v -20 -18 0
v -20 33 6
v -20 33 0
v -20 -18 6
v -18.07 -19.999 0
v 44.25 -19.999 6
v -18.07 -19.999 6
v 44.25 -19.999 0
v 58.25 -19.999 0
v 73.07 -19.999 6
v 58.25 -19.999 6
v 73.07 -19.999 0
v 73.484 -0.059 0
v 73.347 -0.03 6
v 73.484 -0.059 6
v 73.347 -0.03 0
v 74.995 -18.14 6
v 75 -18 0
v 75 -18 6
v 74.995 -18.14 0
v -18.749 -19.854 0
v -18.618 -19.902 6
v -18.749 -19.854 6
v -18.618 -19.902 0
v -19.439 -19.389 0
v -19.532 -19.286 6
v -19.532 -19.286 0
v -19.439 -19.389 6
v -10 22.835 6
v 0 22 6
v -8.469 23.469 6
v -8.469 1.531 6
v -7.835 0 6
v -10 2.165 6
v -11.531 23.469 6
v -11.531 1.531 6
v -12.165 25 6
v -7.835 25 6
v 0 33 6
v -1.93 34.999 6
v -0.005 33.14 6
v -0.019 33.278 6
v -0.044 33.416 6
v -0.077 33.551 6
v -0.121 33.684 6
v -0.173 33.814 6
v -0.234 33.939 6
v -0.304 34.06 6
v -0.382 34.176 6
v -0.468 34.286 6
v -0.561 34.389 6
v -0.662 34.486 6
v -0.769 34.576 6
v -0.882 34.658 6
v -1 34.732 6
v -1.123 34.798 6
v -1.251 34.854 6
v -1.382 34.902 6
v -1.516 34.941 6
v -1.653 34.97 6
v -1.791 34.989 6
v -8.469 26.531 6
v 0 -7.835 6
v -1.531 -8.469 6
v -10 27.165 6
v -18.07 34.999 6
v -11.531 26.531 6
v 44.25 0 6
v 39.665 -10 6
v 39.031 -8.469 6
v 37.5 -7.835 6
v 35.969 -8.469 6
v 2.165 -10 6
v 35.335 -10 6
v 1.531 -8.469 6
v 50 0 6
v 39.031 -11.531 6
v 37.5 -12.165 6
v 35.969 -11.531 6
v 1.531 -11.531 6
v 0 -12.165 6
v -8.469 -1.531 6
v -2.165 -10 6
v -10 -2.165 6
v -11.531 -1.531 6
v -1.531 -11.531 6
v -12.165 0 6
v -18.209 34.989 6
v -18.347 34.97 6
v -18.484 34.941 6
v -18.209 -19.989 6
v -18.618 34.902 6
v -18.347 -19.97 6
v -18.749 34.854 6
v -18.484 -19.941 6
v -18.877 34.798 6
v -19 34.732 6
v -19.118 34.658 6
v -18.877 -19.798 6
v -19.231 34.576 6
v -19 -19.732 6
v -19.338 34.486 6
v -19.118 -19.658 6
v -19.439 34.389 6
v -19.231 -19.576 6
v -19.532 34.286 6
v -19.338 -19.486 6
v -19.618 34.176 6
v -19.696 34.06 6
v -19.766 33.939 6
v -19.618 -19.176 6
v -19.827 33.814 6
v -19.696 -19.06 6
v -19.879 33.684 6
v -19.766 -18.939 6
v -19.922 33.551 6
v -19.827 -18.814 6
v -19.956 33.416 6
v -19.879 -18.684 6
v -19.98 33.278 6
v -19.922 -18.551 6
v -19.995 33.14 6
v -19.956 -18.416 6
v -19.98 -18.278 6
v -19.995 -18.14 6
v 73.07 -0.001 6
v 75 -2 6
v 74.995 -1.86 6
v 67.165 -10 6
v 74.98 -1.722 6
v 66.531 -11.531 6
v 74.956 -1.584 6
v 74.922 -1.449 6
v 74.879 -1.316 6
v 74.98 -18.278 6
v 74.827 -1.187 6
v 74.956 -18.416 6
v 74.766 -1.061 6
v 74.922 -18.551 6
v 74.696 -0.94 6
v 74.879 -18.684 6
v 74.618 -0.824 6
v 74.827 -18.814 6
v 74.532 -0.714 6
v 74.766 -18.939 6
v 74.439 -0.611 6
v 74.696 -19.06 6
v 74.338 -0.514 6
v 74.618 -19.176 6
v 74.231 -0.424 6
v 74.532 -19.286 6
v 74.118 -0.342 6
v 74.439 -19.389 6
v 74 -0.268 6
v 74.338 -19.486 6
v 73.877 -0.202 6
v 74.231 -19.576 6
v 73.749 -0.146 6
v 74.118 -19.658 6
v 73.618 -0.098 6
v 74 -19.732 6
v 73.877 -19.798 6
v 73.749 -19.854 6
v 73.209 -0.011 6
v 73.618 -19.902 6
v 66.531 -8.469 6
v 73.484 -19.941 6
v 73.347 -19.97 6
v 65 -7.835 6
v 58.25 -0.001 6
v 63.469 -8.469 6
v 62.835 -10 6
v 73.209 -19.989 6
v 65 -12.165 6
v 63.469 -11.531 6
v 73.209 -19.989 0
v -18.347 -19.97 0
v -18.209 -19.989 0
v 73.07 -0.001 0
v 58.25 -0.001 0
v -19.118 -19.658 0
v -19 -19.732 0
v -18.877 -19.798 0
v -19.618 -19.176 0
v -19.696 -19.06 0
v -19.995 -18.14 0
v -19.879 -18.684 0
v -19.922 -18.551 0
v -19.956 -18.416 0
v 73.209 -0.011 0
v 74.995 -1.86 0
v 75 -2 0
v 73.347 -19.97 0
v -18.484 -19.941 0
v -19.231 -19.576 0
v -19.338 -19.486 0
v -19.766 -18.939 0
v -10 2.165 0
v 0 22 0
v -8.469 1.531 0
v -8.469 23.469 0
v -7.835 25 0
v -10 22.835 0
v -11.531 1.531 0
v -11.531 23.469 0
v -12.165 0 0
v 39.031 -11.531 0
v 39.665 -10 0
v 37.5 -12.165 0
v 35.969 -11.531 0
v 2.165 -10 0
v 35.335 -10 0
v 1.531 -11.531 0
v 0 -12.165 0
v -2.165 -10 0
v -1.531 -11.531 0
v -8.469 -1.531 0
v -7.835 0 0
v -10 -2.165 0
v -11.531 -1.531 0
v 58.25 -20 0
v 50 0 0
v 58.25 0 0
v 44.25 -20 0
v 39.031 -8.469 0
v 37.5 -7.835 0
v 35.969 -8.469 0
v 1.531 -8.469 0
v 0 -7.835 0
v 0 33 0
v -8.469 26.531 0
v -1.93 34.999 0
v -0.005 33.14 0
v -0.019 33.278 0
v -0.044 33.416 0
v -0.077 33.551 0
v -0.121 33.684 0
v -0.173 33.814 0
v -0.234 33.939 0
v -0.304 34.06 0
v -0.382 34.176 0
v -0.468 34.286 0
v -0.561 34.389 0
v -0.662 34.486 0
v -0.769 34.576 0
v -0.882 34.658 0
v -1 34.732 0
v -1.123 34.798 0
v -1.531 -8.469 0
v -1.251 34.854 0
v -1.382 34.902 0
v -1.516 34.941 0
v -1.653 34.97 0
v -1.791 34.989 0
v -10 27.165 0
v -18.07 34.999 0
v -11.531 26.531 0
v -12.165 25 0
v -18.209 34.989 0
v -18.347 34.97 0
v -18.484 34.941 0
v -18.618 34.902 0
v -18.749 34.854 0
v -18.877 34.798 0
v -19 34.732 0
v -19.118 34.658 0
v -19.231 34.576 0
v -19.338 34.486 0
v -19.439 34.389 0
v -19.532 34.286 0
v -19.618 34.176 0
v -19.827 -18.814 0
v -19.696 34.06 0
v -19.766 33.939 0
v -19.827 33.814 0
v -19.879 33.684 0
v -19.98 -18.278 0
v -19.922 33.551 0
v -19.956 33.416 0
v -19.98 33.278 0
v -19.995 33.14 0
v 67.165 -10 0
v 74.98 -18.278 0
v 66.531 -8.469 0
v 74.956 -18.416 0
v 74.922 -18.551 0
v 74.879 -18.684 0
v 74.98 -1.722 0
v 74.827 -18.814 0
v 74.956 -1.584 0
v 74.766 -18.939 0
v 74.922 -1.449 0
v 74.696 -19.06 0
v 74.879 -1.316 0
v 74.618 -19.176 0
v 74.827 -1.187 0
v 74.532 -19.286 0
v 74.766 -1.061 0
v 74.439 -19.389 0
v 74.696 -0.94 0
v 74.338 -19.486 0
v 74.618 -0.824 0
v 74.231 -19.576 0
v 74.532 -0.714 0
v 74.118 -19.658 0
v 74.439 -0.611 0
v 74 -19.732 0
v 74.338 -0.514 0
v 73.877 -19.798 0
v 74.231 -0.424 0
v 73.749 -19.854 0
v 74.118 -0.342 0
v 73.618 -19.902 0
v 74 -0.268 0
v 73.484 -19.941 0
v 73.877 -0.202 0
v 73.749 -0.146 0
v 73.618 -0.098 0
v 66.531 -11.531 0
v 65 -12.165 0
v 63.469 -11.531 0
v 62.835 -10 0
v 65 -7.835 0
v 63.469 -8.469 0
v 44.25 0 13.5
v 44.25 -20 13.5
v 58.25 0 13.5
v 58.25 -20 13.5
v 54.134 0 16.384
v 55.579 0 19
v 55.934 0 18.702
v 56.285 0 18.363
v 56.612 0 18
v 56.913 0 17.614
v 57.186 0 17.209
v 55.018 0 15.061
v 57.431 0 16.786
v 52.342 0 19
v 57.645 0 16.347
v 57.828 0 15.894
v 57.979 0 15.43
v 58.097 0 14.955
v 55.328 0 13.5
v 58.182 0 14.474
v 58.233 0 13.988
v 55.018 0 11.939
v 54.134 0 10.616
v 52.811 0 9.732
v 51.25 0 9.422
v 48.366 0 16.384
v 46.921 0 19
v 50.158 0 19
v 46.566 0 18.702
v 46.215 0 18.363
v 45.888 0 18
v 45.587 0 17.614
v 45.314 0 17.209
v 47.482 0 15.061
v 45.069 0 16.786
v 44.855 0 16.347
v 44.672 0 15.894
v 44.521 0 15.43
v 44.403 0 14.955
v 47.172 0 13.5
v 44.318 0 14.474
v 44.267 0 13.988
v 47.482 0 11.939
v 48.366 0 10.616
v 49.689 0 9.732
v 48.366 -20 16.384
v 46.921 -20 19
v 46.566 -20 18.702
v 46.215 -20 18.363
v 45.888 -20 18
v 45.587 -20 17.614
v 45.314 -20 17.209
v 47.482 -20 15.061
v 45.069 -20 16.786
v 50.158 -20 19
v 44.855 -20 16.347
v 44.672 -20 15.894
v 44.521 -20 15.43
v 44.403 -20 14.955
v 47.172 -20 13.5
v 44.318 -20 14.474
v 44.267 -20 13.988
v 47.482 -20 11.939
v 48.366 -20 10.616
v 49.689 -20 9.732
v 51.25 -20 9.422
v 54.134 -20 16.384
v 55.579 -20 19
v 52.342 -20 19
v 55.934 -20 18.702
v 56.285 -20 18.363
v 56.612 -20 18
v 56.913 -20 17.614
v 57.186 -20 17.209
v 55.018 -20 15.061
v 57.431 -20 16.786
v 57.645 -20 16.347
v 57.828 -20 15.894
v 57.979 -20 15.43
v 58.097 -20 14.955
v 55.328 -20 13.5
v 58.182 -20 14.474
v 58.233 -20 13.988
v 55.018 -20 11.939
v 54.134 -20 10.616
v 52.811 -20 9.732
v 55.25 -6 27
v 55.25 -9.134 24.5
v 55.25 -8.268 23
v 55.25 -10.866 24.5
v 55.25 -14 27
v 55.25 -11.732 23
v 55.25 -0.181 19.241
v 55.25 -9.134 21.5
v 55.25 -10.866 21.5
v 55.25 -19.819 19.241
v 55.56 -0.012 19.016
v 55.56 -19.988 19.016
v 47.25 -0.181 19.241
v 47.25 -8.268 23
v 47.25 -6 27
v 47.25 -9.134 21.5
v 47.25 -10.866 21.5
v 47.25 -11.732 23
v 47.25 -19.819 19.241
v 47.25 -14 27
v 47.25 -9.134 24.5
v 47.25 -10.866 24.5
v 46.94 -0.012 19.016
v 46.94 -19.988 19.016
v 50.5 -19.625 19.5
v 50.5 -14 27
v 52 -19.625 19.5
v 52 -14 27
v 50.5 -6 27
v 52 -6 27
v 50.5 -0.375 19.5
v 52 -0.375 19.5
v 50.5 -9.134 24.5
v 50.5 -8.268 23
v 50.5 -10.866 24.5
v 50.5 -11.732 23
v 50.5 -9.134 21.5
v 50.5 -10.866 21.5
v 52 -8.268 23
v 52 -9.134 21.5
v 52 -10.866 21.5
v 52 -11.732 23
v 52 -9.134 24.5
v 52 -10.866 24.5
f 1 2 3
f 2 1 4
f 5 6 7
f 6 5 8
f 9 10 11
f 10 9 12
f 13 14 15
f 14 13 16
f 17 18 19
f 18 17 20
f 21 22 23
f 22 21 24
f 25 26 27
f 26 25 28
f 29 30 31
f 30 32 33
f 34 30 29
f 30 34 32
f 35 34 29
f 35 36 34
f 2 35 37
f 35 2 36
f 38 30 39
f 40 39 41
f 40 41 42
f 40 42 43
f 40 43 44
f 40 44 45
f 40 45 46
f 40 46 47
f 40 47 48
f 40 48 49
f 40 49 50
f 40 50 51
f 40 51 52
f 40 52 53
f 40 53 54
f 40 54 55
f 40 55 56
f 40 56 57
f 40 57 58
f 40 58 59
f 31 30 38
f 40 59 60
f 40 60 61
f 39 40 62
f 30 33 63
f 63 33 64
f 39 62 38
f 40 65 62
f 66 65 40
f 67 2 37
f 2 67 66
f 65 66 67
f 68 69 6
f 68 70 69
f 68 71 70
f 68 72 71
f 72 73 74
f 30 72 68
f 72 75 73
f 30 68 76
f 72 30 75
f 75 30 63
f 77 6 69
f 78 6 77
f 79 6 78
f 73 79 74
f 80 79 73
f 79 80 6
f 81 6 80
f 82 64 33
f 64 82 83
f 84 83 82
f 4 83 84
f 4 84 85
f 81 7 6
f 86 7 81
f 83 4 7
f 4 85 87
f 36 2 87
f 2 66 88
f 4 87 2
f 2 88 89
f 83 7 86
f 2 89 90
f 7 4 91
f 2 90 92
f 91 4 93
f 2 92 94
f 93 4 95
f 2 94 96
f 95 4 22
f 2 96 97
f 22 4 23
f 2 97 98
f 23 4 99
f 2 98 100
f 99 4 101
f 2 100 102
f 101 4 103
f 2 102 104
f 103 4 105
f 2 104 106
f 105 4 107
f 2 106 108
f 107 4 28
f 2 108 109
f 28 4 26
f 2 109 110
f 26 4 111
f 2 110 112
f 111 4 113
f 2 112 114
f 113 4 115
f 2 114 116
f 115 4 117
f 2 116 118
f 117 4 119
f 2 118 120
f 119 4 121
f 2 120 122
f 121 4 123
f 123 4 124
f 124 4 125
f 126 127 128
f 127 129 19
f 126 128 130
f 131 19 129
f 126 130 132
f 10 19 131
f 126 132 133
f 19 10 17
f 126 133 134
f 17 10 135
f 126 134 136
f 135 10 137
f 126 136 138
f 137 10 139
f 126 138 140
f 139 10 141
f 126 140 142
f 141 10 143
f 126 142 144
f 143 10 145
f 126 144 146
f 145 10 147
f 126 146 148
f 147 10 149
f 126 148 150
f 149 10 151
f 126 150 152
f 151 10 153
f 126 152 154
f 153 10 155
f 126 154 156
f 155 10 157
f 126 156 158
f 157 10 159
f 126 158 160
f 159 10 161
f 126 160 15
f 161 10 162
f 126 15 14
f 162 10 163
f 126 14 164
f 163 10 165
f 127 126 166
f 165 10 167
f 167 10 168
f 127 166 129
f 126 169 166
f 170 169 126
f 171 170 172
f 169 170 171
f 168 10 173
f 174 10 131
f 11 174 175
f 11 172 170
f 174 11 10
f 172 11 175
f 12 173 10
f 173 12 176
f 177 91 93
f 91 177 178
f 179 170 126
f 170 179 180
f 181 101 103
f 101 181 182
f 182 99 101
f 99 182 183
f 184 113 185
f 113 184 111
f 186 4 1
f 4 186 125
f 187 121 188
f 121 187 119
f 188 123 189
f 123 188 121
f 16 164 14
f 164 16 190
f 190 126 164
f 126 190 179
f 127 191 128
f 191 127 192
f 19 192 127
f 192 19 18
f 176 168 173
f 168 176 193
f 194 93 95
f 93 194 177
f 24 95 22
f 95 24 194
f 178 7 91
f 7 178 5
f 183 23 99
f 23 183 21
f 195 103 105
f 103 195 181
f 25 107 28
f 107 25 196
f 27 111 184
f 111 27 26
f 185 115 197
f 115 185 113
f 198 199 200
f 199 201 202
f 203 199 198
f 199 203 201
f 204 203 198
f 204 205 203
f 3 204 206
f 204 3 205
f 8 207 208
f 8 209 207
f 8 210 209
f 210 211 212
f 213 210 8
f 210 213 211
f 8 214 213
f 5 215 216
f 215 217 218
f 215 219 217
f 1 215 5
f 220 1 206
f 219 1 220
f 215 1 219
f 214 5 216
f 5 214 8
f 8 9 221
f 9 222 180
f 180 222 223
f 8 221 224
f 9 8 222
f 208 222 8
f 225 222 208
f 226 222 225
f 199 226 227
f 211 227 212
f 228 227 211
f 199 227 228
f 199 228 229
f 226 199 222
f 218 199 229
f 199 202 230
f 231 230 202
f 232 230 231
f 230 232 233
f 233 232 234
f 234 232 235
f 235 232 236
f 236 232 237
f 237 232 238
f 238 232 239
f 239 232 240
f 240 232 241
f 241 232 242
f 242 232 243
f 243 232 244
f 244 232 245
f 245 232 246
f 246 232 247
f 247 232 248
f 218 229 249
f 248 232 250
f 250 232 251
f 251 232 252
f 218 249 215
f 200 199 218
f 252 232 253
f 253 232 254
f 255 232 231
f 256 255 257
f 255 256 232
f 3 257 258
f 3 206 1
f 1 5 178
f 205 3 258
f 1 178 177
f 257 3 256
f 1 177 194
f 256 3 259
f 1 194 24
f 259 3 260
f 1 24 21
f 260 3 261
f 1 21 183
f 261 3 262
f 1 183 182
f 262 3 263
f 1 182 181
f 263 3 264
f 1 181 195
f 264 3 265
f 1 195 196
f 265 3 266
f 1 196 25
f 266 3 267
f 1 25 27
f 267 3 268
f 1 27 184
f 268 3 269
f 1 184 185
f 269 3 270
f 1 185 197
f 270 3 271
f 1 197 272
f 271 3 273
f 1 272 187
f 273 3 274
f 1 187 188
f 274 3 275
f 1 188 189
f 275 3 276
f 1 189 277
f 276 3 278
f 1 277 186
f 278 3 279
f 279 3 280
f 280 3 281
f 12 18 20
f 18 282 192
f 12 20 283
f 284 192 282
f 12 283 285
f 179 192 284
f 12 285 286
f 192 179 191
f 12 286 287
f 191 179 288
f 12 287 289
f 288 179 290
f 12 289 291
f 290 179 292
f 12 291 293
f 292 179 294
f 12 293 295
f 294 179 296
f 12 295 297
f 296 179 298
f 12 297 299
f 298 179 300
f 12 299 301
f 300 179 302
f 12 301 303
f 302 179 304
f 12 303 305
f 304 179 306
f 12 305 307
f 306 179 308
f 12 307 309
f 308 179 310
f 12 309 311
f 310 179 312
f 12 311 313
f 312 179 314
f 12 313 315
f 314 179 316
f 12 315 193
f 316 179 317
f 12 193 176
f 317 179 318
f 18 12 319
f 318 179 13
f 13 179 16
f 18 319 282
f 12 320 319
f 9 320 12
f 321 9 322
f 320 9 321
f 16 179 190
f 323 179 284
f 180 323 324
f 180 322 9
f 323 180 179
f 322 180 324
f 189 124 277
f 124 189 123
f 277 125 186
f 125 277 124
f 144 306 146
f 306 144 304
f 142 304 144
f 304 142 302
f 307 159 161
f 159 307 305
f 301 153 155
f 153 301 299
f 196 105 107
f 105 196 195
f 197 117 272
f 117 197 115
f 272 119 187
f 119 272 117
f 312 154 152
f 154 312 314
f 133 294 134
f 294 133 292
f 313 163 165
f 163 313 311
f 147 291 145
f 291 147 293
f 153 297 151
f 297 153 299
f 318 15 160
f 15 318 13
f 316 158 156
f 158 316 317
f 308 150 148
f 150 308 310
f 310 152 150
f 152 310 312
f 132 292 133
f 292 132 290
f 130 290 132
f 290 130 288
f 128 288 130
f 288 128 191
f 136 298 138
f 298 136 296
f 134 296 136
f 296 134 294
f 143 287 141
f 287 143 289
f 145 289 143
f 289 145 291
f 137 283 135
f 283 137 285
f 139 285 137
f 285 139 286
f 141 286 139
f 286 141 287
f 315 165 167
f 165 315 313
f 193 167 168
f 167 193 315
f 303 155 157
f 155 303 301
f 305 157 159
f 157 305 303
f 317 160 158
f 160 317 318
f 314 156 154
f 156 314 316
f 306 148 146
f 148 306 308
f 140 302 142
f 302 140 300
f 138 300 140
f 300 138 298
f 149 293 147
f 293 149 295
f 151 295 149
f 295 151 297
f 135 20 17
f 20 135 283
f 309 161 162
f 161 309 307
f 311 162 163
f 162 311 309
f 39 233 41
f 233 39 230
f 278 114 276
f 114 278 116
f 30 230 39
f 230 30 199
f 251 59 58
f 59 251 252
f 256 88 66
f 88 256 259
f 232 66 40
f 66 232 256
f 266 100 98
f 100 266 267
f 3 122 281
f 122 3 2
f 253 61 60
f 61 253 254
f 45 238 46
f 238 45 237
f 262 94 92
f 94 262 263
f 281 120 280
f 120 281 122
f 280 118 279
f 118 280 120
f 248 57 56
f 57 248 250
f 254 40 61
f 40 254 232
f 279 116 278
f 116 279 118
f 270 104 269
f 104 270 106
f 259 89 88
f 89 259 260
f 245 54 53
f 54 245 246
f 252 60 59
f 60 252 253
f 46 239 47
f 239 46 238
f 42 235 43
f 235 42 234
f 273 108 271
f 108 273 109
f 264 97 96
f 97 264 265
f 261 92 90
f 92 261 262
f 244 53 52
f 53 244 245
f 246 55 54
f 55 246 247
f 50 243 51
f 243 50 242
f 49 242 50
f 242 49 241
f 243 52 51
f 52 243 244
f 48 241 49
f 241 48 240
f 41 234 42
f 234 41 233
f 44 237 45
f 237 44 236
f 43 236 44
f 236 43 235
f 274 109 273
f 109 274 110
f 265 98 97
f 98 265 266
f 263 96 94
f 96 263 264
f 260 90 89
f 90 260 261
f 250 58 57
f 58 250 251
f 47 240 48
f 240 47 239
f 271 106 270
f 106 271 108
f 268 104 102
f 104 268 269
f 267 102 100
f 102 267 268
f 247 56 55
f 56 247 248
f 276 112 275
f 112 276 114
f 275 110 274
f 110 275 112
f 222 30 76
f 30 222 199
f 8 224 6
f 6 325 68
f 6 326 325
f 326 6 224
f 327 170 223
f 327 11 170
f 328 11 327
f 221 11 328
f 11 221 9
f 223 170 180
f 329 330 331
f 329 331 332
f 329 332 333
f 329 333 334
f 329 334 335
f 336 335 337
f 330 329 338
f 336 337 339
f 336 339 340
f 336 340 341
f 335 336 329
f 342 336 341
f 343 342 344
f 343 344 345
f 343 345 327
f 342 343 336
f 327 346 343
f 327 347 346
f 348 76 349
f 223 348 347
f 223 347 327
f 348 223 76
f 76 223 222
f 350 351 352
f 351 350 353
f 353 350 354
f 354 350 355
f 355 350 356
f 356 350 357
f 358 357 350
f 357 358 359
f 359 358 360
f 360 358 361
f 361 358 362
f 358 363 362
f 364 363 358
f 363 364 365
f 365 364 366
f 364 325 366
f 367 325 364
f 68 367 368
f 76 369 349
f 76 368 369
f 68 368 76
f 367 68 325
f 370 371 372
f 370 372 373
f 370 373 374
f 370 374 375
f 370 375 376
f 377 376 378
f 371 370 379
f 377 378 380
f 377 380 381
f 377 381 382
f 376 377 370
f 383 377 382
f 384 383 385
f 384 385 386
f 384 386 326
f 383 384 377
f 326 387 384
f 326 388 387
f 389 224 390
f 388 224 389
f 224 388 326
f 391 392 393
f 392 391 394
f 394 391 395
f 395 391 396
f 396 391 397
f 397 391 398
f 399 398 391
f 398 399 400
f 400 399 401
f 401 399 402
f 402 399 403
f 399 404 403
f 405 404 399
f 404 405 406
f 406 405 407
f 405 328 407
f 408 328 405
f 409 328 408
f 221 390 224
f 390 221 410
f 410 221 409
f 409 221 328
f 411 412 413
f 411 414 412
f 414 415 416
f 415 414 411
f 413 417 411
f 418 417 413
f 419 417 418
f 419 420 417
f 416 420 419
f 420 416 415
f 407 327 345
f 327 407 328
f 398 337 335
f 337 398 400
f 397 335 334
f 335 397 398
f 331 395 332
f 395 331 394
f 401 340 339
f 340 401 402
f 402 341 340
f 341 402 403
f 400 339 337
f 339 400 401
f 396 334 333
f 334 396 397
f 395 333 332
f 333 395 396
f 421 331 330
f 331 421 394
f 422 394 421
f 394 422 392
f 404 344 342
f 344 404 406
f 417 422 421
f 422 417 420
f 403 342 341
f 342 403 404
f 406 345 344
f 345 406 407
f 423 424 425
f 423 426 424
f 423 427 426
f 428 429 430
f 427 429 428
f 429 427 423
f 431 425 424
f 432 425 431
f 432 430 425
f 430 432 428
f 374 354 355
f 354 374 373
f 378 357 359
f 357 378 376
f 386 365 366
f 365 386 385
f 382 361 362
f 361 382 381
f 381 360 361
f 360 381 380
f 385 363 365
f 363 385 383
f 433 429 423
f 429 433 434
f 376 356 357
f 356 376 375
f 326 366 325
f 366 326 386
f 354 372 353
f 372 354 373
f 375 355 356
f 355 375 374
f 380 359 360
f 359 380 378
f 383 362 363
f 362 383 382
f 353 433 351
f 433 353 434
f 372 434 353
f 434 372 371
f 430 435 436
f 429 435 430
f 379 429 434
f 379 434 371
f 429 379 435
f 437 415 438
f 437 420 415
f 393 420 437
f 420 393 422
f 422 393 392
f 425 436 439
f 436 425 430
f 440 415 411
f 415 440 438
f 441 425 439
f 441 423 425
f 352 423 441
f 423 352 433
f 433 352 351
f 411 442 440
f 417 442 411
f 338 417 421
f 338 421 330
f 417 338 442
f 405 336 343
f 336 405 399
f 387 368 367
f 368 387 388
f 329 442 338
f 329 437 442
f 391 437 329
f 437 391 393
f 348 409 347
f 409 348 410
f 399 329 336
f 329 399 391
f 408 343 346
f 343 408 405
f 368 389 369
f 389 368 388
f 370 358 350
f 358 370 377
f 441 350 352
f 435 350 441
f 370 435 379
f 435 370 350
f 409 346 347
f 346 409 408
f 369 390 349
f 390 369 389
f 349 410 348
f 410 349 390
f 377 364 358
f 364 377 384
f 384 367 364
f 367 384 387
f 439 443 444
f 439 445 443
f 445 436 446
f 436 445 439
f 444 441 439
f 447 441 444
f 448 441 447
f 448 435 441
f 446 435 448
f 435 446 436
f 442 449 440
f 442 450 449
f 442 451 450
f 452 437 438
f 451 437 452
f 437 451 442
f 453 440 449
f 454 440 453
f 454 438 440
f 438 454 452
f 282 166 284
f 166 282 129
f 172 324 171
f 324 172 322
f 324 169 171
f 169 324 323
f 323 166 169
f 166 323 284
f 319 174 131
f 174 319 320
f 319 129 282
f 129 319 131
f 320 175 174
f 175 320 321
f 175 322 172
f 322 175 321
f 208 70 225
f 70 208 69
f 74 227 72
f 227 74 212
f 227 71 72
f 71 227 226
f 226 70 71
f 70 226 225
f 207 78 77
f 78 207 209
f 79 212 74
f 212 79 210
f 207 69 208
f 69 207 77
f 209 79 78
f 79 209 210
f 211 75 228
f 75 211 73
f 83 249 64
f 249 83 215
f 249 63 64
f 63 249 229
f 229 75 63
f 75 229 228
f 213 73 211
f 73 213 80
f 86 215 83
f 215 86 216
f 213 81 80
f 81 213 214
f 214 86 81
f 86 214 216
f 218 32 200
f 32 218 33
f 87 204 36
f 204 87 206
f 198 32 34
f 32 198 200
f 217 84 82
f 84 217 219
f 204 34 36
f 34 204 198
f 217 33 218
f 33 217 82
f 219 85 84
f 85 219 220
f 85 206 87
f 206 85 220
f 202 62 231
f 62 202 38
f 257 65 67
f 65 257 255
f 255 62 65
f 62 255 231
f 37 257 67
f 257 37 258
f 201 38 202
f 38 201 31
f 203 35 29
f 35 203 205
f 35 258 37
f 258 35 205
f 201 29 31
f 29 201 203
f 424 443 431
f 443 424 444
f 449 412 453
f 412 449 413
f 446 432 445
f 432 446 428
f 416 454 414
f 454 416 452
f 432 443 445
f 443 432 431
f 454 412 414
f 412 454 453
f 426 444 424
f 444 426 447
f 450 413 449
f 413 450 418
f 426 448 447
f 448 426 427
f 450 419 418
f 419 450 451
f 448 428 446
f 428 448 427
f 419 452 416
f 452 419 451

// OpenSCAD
// file: polyhole.scad
// The Cylinder is dead! Long live the Cylinder!
// A module for a polyhole by radius, based on Nophead's work.

module polyhole(h, r, cent = false)
{
    n = max(round(4 * r), 3);
    cylinder(h = h, r = r / cos(180 / n), $fn = n, center = cent);
}
// main file
// A mount for the y-axis bar.

use<polyhole.scad>

YMount();

module YMount()
{
    difference()
    {
        union()
        {
            hull()
            {
                translate([-18, -18, 0])
                    cylinder(h = 6, r = 2, $fn = 90);
                translate([-18, -2, 0])
                    cylinder(h = 6, r = 2, $fn = 90);
                translate([73, -2, 0])
                    cylinder(h = 6, r = 2, $fn = 90);
                translate([73, -18, 0])
                    cylinder(h = 6, r = 2, $fn = 90);
            }
            hull()
            {
                translate([-18, -18, 0])
                    cylinder(h = 6, r = 2, $fn = 90);
                translate([-2, -18, 0])
                    cylinder(h = 6, r = 2, $fn = 90);
                translate([-2, 33, 0])
                    cylinder(h = 6, r = 2, $fn = 90);
                translate([-18, 33, 0])
                    cylinder(h = 6, r = 2, $fn = 90);
            }
            linear_extrude(height = 6)
                polygon([[-5, -5], [50, 0], [0, 22]]);
            translate([51.25, -10, 19])
                cube([14, 20, 38], center = true);
        }
        hull()
        {
            translate([51.25, 0, 13.5])
                rotate([90, 0, 0])
                    polyhole(20, 4);
            translate([51.25, -10, 18.5])
                cube([1.5, 20, 2], center = true);
        }
        difference()
        {
            translate([58.25, -10, 26.5])
                cube([6, 20, 26], center = true);
            translate([51.25, 0, 13.5])
                rotate([90, 0, 0])
                    cylinder(h = 20, r = 7, $fn = 90);
        }
        difference()
        {
            translate([44.25, -10, 26.5])
                cube([6, 20, 26], center = true);
            translate([51.25, 0, 13.5])
                rotate([90, 0, 0])
                    cylinder(h = 20, r = 7, $fn = 90);
        }
        difference()
        {
            translate([51.25, -10, 32])
                cube([14, 20, 26], center = true);
            hull()
            {
                translate([51.25, -10, 18])
                    cube([14, 20, 2], center = true);
                translate([51.25, -10, 26])
                    cube([14, 8, 2], center = true);
            }
        }
        translate([51.25, -10, 26.5])
                cube([1.5, 20, 26], center = true);
        translate([65, -10, 0])
            polyhole(6, 2);
        translate([37.5, -10, 0])
            polyhole(6, 2);
        translate([0, -10, 0])
            polyhole(6, 2);
        translate([-10, 0, 0])
            polyhole(6, 2);
        translate([-10, 25, 0])
            polyhole(6, 2);
        translate([46, -10, 23])
            rotate([90, 0, 90])
                polyhole(14, 1.5);
    }
}
